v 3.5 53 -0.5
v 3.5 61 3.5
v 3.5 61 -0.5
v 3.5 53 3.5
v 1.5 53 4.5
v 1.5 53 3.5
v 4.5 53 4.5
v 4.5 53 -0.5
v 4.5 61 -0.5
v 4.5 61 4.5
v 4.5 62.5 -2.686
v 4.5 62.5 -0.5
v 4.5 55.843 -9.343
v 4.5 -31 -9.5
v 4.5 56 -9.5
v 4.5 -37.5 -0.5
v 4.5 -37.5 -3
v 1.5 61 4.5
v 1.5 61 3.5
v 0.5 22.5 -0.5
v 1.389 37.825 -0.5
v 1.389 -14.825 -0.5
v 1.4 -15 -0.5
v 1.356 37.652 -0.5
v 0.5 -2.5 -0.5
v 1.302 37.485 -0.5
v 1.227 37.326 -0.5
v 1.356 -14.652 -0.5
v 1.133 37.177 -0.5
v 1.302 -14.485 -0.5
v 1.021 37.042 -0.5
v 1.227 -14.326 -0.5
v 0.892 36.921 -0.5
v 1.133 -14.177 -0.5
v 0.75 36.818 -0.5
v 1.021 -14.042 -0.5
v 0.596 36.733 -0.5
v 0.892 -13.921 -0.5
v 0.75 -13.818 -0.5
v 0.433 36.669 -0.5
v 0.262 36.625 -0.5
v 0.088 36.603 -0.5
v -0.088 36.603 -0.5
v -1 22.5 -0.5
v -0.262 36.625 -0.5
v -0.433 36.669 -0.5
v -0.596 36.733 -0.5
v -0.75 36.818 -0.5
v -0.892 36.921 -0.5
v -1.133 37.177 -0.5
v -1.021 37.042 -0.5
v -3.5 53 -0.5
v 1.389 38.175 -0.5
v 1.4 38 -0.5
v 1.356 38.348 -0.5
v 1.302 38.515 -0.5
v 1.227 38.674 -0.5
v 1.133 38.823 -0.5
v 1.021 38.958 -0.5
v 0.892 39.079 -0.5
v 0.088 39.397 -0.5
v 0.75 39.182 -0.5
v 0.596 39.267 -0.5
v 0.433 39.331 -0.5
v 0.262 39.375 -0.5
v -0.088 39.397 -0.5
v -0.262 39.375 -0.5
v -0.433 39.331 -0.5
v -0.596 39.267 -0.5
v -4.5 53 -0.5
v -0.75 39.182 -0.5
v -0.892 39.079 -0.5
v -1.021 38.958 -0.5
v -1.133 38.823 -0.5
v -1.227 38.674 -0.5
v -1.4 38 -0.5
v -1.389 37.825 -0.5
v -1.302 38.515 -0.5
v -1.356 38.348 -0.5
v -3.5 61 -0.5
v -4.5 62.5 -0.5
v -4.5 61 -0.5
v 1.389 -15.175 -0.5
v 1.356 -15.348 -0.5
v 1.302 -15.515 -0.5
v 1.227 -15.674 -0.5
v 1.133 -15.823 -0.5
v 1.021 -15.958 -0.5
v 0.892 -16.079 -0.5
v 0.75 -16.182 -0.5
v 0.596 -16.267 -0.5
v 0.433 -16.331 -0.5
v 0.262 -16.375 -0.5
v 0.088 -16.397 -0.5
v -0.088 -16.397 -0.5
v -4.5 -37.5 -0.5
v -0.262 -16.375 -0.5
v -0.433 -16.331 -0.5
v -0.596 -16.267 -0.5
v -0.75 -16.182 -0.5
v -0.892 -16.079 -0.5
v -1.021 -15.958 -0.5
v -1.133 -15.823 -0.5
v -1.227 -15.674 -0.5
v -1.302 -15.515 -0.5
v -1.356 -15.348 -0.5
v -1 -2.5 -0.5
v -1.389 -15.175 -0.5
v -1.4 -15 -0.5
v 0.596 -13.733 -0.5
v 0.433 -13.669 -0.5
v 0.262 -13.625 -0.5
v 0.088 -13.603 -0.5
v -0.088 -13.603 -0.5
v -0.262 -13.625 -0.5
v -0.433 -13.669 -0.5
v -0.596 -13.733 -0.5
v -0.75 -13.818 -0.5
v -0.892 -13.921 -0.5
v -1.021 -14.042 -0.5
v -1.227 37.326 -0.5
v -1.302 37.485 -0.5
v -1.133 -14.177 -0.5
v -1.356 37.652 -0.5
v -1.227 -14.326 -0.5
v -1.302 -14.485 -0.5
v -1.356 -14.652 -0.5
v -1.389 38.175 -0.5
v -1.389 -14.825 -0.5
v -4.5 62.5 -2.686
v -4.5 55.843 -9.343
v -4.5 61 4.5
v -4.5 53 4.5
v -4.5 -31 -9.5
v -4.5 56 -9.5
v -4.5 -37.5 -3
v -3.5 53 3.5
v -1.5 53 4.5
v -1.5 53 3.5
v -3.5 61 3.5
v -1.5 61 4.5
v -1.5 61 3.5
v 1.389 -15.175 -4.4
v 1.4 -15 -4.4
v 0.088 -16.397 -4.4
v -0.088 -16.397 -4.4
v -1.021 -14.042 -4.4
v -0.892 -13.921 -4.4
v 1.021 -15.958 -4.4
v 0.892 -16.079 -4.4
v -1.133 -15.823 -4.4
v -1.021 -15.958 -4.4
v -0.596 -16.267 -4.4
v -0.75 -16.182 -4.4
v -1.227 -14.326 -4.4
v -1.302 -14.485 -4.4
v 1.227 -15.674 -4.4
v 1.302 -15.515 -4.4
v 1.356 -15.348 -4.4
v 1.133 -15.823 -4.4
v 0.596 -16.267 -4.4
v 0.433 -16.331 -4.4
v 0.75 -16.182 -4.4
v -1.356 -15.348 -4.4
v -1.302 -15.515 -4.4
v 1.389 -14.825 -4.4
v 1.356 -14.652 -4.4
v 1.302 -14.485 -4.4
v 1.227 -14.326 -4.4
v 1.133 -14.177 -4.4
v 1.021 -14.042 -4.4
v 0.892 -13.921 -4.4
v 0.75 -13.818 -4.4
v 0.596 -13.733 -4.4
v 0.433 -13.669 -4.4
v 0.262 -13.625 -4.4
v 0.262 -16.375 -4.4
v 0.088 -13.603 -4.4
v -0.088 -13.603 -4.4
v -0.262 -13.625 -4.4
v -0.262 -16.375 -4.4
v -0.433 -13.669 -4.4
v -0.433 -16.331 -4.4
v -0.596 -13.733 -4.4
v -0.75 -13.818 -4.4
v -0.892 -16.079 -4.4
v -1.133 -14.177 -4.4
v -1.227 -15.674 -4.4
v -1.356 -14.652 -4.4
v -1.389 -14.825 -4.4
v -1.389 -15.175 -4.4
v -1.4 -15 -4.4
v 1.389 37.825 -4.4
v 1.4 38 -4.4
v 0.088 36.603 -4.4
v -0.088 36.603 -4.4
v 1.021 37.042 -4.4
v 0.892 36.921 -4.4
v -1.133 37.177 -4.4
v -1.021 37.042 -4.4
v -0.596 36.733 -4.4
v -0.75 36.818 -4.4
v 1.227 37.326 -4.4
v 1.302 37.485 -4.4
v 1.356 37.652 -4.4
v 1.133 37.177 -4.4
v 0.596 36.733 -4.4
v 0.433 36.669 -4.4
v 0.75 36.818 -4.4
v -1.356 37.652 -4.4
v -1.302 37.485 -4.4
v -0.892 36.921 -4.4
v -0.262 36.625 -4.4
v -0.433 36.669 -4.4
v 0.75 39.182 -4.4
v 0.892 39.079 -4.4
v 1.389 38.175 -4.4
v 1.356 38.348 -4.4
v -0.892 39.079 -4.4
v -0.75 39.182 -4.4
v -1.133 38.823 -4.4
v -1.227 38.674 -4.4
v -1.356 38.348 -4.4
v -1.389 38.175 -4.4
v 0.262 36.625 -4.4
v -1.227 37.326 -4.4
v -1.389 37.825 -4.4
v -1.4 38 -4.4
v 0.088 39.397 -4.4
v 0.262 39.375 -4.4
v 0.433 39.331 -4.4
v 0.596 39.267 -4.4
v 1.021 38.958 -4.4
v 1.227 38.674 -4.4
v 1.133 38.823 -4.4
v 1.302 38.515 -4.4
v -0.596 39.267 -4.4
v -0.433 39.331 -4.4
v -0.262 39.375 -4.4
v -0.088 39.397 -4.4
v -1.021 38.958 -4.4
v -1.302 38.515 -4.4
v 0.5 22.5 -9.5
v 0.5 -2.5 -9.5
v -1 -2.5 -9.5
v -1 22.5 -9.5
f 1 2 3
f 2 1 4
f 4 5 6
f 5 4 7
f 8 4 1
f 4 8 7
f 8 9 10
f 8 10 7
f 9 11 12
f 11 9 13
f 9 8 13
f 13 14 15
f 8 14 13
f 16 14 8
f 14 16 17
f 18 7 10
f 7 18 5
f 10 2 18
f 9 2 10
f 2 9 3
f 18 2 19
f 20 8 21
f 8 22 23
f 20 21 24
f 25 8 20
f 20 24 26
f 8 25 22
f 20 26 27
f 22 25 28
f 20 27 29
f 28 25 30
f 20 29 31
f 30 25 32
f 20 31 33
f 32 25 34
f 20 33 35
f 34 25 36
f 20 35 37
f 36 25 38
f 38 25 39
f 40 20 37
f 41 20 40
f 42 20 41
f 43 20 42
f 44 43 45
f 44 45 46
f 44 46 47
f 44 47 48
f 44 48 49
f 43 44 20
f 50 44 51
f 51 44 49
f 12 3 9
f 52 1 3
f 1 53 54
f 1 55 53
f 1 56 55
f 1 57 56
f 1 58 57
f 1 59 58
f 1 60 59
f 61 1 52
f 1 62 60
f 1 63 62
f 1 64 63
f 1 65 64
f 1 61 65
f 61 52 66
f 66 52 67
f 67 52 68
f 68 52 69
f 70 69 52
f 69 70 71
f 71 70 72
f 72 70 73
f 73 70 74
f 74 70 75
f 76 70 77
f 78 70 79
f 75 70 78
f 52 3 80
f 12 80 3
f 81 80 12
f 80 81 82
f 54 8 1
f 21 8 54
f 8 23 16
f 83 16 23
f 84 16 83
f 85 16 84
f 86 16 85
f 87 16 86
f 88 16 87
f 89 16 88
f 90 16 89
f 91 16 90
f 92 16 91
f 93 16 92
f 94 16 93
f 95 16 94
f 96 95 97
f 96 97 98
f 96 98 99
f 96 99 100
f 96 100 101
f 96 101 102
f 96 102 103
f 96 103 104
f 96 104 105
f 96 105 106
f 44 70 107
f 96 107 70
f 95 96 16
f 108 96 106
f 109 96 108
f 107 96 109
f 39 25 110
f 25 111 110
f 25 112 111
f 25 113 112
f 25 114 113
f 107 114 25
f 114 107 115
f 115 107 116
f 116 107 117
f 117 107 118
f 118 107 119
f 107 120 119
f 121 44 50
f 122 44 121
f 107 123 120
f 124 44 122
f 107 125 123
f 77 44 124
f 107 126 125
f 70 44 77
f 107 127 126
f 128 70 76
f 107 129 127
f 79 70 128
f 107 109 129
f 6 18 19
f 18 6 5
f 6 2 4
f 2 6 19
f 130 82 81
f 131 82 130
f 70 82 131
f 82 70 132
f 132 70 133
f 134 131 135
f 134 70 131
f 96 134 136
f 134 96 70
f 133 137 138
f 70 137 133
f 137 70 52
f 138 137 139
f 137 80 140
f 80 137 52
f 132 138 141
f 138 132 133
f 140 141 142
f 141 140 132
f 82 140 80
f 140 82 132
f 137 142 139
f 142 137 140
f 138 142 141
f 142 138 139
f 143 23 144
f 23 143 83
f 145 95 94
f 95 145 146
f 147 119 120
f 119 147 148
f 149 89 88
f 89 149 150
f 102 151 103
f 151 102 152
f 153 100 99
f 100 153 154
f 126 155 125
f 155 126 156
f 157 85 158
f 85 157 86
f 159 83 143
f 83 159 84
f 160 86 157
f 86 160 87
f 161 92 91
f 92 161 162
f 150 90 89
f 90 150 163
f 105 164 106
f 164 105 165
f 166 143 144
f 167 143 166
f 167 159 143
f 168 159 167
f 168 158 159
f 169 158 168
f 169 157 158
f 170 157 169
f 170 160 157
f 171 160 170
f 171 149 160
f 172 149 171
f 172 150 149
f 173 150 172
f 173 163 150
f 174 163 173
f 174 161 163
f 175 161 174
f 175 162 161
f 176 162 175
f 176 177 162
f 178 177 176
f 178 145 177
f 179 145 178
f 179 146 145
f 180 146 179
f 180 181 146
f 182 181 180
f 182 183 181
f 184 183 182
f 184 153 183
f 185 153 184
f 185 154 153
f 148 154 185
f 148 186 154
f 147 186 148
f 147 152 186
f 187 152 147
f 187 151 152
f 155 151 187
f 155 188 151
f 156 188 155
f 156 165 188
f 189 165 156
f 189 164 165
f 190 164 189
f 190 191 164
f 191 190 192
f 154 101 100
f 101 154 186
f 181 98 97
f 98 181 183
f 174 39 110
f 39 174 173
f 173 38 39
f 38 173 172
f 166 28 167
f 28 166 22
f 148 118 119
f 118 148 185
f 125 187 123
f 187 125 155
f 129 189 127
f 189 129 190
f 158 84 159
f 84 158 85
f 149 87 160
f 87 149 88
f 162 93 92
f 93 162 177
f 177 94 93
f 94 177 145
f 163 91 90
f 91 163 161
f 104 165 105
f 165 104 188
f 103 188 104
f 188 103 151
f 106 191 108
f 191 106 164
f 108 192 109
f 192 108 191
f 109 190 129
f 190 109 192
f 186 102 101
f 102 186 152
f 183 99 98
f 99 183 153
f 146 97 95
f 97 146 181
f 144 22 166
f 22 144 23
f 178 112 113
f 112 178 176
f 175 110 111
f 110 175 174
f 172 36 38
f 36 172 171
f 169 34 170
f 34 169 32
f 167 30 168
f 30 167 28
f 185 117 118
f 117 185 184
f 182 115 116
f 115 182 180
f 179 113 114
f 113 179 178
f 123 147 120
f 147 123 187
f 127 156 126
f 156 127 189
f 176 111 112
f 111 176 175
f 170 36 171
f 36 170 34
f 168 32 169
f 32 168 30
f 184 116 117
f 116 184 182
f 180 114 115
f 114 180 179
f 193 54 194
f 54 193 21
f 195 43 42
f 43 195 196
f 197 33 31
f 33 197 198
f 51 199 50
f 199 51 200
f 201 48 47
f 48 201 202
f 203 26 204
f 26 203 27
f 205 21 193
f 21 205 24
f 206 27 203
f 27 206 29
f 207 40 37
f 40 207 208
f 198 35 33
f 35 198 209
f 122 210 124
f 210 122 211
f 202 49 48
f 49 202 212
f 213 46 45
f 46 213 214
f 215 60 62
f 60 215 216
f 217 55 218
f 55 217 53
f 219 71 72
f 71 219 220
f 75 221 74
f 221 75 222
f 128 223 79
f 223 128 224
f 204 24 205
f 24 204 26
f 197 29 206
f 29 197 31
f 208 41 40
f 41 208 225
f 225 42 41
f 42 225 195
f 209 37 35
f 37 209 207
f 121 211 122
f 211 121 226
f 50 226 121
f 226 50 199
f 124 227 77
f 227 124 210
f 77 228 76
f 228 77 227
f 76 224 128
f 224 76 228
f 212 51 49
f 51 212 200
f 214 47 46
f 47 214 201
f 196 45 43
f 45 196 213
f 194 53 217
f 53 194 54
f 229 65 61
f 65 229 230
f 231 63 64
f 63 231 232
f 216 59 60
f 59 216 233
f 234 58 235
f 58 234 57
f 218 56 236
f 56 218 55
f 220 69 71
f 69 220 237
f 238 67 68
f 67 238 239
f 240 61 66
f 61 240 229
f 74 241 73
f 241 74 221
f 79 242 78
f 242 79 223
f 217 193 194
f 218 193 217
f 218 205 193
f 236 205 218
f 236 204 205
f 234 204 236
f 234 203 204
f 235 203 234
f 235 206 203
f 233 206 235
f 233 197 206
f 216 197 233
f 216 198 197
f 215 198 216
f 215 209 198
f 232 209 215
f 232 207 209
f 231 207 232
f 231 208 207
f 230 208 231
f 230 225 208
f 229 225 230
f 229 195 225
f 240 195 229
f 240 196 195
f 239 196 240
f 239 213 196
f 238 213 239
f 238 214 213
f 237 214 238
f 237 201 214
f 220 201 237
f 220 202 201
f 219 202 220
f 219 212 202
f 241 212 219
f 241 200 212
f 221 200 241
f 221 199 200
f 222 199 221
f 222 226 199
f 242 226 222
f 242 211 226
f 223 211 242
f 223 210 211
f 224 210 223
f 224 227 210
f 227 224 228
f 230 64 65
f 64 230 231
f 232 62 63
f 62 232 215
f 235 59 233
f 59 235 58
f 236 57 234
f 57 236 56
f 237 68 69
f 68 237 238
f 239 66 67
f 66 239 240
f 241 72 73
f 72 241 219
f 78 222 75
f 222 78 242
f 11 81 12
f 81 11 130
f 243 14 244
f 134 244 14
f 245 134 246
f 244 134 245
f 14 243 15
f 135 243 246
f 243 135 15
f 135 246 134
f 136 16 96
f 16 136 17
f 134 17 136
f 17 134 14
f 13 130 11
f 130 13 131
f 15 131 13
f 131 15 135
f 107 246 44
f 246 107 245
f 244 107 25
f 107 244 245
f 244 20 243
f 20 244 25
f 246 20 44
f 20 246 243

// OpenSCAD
$fn=50;
BOX_W = 38; // Box Width
BOX_L = 86;// Box Length
BOX_H = 1.0; // Box Height
//SCREW_SIZE = .5; // Screw size in mm
CORNER_RADIUS = 1.0; // Radius of corners
WALL = 1.0;// Wall Thickness

KEEL_WIDTH=9.0;
KEEL_HEIGHT=9.0;
KEEL_LENGTH=100;

VENT_OFFSET = 2.5;
VENT_L = 16.5;
VENT_R = -18.5;
 
difference() {
    union() {
        // keel
        translate([0,62.5,-5])
        rotate([90,0,0])
        difference() {
            linear_extrude(KEEL_LENGTH) square([KEEL_WIDTH, KEEL_HEIGHT], center=true); 
            // front of keel slope
            translate([-5, -5, 93])
            rotate([45, 0, 0])
            cube([10, 11, 8]);  
            
            // back of keel slope
            translate([-5, -10, 1])
            rotate([-45, 0, 0])
            cube([10, 11, 8]); 
            
            //center cutout - vent
            // y, z, x
            translate([-1.0,-5, 40])
            rotate([0,0,0])
            //y, z, x
            #cube([1.5, 12, 25]);
            
            // screw holes
            rotate([90,0,0])
            union() {
                // x,y,z
                //translate([0.0, KEEL_LENGTH-35.0, -4.6]) #cylinder(h=4, d=2.8); 
                translate([0.0, KEEL_LENGTH-22.5, -4.6]) #cylinder(h=4, d=2.8); 
                translate([0.0, KEEL_LENGTH-75.5, -4.6]) #cylinder(h=4, d=2.8);   
            }
        }
        // Inverted L-shaped C-clamp
        difference() {
            translate([KEEL_WIDTH/2-3, KEEL_LENGTH-18, -0.5])
            rotate([90, 0, 0])
            union() {
                // Vertical arm of the C-clamp 2
                translate([2.0, 0, 21]) cube([1, 5, 8]);
                // Horizontal arm of the C-clamp
                rotate([90, 0, 0])
                translate([0, 21, -5]) cube([2, 8, 1]);
                  
                // Vertical arm of the C-clamp 1
                translate([-6, 0, 21]) cube([1, 5, 8]);
                // Horizontal arm of the C-clamp
                rotate([90, 0, 0])
                translate([-5.0, 21,-5]) cube([2, 8, 1]);
            }
        }
    }
}
